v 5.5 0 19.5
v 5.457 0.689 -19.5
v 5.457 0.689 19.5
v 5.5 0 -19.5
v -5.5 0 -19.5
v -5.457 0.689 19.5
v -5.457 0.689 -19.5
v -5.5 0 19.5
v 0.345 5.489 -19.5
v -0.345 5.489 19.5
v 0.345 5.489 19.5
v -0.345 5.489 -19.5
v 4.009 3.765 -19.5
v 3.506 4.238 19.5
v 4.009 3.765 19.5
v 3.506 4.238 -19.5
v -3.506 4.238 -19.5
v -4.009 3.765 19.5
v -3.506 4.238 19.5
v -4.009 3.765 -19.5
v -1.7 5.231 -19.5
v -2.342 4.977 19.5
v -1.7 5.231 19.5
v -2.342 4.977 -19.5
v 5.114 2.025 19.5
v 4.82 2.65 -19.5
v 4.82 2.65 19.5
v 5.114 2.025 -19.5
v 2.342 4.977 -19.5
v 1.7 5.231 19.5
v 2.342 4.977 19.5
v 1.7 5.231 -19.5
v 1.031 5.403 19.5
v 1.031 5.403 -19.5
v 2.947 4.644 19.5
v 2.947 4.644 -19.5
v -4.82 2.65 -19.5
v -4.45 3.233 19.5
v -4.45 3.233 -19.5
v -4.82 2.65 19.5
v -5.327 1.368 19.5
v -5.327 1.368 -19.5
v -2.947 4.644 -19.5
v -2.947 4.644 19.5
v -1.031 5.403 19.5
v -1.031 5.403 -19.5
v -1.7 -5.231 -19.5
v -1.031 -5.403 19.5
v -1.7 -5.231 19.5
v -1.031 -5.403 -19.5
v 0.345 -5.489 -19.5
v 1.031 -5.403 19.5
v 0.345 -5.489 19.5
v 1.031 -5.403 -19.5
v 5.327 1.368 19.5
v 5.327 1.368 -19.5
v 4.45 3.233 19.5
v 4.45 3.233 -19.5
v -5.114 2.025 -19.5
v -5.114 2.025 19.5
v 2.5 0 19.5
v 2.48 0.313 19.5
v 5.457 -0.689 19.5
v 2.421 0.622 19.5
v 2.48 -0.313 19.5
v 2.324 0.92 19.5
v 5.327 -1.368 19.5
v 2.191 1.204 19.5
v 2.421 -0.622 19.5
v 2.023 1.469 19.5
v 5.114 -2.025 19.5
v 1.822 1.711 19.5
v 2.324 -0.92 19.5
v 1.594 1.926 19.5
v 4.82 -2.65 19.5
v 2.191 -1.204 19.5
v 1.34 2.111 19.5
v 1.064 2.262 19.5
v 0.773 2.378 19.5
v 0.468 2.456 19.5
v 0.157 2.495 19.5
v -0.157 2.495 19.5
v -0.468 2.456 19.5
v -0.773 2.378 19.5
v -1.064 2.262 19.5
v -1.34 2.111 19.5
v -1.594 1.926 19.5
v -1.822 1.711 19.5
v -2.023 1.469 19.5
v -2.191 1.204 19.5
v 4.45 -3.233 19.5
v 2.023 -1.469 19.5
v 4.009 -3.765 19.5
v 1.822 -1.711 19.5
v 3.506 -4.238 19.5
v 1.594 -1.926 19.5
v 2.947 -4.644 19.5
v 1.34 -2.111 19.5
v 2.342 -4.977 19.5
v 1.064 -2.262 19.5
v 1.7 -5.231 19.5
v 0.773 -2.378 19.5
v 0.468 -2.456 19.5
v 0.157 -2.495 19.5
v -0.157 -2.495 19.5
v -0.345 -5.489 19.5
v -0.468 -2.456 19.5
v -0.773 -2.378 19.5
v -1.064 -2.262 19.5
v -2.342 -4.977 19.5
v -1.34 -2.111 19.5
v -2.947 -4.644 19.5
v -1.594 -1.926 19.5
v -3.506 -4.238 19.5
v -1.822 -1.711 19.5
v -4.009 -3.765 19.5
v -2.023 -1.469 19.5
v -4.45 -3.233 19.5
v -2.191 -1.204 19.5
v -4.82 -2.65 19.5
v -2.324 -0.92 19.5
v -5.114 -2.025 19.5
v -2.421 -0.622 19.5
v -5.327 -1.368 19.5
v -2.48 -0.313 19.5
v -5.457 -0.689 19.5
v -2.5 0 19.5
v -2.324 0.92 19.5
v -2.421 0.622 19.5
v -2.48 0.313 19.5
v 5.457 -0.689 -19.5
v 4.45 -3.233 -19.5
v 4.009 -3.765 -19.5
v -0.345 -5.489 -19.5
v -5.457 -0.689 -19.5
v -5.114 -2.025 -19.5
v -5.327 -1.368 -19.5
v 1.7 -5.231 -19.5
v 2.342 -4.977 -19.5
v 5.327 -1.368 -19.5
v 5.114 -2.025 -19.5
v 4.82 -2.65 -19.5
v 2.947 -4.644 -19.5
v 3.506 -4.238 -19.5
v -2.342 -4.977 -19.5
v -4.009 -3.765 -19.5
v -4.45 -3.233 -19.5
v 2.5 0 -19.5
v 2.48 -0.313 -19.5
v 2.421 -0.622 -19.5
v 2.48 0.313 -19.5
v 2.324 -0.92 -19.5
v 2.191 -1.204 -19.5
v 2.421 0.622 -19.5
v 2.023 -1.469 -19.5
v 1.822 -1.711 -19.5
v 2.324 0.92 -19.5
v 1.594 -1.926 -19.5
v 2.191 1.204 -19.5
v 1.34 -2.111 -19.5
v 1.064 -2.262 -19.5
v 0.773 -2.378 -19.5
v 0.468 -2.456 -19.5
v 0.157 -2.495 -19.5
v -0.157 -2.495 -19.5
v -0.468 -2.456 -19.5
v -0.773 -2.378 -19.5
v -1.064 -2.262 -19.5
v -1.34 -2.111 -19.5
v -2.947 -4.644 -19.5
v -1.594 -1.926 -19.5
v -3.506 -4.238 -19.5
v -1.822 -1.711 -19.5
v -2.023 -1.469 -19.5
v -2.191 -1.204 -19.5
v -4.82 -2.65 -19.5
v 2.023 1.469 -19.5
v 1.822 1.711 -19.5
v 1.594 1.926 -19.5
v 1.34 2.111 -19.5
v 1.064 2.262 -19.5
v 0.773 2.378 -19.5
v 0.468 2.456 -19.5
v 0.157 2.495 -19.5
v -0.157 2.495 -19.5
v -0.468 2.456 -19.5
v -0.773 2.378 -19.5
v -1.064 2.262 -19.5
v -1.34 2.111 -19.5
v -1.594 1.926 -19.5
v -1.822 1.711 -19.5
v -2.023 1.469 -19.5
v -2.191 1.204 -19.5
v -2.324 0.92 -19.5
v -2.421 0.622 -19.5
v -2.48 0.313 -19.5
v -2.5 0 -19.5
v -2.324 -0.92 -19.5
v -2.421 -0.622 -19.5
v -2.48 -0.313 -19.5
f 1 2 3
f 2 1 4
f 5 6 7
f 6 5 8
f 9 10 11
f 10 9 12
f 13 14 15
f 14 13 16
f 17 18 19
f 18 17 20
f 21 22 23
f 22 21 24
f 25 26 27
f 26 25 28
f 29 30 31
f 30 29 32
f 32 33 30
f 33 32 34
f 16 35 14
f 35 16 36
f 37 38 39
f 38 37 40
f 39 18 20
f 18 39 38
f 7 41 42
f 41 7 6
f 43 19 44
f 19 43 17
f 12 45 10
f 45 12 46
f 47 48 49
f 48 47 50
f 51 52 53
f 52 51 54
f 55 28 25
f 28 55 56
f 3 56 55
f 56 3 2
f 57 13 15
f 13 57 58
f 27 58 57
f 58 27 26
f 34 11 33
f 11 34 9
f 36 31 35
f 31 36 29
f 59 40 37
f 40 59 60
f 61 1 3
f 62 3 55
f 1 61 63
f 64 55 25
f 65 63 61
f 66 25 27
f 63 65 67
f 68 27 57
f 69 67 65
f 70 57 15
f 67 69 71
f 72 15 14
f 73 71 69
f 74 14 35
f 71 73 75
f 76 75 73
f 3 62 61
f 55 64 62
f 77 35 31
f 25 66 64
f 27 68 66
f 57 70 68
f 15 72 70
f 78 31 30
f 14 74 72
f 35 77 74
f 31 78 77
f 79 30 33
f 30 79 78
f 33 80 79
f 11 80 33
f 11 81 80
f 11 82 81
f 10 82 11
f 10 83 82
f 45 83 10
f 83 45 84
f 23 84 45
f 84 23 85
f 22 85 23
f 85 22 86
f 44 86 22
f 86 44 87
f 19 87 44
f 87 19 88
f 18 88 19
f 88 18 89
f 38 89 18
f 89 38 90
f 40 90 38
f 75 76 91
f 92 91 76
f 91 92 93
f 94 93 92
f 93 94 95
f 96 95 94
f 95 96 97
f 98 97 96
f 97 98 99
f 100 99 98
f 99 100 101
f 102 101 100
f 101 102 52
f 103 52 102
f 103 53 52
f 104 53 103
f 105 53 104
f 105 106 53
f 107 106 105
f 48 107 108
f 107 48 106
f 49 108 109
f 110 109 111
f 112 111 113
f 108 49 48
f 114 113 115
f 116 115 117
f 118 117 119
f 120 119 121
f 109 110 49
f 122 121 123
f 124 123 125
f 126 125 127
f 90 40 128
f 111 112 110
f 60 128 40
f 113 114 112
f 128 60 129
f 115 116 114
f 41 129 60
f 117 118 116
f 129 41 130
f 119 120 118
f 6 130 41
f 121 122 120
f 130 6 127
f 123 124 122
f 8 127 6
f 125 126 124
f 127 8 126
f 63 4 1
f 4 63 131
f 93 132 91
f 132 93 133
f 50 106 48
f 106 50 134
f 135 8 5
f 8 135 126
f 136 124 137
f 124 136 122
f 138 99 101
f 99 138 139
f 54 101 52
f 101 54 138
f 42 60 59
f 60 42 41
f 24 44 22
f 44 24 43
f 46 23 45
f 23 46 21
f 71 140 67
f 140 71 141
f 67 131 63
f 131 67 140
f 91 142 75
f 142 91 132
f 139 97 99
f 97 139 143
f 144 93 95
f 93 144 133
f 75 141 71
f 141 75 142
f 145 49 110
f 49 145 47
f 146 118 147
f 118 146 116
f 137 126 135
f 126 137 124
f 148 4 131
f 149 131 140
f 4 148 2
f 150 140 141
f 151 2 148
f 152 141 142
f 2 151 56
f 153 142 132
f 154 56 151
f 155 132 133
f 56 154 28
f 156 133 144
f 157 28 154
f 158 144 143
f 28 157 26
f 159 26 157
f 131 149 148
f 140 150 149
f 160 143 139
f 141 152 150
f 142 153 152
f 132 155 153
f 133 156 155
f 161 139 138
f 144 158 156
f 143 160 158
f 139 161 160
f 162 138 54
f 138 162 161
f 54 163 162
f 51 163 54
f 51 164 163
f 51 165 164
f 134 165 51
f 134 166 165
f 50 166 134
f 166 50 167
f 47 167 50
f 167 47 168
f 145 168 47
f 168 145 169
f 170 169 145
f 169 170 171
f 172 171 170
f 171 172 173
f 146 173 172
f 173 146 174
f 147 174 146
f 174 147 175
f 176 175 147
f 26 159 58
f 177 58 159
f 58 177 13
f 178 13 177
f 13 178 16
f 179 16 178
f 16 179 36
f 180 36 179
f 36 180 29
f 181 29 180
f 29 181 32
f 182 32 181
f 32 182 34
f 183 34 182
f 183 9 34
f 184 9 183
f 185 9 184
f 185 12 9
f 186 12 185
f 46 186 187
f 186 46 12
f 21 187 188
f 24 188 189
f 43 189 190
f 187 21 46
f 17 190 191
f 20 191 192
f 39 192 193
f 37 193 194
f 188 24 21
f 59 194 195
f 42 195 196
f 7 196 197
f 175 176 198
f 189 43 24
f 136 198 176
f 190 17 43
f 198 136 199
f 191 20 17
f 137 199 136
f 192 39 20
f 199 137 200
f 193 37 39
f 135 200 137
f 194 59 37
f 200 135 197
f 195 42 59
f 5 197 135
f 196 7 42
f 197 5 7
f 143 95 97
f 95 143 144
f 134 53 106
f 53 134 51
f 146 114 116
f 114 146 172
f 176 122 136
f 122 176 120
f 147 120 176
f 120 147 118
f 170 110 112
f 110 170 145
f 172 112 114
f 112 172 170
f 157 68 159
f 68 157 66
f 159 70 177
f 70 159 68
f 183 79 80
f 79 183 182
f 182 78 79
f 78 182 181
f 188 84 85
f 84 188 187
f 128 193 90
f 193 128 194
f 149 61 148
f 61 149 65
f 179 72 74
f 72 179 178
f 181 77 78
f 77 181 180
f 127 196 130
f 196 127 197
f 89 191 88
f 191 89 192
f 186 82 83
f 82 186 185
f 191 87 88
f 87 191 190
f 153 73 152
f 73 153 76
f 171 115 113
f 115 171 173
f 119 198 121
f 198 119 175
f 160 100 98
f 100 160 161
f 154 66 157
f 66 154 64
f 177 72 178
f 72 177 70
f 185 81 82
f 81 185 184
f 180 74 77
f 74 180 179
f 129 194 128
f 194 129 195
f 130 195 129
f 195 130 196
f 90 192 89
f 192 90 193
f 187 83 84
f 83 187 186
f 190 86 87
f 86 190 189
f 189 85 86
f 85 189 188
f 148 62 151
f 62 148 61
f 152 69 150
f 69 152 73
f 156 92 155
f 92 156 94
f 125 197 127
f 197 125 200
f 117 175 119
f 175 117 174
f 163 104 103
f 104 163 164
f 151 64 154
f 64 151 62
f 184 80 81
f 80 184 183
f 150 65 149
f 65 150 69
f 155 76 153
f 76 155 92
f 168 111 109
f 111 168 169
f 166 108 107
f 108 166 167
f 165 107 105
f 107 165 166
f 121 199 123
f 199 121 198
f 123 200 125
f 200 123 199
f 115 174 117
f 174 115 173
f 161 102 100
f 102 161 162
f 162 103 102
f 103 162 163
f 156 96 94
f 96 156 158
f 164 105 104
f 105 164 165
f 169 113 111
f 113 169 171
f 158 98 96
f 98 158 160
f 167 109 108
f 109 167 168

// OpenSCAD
$fn = 50;


difference() {
	union() {
		translate(v = [0, 0, -19.5000000000]) {
			cylinder(h = 39, r = 5.5000000000);
		}
	}
	union() {
		translate(v = [0, 0, -100.0000000000]) {
			cylinder(h = 200, r = 2.5000000000);
		}
	}
}
